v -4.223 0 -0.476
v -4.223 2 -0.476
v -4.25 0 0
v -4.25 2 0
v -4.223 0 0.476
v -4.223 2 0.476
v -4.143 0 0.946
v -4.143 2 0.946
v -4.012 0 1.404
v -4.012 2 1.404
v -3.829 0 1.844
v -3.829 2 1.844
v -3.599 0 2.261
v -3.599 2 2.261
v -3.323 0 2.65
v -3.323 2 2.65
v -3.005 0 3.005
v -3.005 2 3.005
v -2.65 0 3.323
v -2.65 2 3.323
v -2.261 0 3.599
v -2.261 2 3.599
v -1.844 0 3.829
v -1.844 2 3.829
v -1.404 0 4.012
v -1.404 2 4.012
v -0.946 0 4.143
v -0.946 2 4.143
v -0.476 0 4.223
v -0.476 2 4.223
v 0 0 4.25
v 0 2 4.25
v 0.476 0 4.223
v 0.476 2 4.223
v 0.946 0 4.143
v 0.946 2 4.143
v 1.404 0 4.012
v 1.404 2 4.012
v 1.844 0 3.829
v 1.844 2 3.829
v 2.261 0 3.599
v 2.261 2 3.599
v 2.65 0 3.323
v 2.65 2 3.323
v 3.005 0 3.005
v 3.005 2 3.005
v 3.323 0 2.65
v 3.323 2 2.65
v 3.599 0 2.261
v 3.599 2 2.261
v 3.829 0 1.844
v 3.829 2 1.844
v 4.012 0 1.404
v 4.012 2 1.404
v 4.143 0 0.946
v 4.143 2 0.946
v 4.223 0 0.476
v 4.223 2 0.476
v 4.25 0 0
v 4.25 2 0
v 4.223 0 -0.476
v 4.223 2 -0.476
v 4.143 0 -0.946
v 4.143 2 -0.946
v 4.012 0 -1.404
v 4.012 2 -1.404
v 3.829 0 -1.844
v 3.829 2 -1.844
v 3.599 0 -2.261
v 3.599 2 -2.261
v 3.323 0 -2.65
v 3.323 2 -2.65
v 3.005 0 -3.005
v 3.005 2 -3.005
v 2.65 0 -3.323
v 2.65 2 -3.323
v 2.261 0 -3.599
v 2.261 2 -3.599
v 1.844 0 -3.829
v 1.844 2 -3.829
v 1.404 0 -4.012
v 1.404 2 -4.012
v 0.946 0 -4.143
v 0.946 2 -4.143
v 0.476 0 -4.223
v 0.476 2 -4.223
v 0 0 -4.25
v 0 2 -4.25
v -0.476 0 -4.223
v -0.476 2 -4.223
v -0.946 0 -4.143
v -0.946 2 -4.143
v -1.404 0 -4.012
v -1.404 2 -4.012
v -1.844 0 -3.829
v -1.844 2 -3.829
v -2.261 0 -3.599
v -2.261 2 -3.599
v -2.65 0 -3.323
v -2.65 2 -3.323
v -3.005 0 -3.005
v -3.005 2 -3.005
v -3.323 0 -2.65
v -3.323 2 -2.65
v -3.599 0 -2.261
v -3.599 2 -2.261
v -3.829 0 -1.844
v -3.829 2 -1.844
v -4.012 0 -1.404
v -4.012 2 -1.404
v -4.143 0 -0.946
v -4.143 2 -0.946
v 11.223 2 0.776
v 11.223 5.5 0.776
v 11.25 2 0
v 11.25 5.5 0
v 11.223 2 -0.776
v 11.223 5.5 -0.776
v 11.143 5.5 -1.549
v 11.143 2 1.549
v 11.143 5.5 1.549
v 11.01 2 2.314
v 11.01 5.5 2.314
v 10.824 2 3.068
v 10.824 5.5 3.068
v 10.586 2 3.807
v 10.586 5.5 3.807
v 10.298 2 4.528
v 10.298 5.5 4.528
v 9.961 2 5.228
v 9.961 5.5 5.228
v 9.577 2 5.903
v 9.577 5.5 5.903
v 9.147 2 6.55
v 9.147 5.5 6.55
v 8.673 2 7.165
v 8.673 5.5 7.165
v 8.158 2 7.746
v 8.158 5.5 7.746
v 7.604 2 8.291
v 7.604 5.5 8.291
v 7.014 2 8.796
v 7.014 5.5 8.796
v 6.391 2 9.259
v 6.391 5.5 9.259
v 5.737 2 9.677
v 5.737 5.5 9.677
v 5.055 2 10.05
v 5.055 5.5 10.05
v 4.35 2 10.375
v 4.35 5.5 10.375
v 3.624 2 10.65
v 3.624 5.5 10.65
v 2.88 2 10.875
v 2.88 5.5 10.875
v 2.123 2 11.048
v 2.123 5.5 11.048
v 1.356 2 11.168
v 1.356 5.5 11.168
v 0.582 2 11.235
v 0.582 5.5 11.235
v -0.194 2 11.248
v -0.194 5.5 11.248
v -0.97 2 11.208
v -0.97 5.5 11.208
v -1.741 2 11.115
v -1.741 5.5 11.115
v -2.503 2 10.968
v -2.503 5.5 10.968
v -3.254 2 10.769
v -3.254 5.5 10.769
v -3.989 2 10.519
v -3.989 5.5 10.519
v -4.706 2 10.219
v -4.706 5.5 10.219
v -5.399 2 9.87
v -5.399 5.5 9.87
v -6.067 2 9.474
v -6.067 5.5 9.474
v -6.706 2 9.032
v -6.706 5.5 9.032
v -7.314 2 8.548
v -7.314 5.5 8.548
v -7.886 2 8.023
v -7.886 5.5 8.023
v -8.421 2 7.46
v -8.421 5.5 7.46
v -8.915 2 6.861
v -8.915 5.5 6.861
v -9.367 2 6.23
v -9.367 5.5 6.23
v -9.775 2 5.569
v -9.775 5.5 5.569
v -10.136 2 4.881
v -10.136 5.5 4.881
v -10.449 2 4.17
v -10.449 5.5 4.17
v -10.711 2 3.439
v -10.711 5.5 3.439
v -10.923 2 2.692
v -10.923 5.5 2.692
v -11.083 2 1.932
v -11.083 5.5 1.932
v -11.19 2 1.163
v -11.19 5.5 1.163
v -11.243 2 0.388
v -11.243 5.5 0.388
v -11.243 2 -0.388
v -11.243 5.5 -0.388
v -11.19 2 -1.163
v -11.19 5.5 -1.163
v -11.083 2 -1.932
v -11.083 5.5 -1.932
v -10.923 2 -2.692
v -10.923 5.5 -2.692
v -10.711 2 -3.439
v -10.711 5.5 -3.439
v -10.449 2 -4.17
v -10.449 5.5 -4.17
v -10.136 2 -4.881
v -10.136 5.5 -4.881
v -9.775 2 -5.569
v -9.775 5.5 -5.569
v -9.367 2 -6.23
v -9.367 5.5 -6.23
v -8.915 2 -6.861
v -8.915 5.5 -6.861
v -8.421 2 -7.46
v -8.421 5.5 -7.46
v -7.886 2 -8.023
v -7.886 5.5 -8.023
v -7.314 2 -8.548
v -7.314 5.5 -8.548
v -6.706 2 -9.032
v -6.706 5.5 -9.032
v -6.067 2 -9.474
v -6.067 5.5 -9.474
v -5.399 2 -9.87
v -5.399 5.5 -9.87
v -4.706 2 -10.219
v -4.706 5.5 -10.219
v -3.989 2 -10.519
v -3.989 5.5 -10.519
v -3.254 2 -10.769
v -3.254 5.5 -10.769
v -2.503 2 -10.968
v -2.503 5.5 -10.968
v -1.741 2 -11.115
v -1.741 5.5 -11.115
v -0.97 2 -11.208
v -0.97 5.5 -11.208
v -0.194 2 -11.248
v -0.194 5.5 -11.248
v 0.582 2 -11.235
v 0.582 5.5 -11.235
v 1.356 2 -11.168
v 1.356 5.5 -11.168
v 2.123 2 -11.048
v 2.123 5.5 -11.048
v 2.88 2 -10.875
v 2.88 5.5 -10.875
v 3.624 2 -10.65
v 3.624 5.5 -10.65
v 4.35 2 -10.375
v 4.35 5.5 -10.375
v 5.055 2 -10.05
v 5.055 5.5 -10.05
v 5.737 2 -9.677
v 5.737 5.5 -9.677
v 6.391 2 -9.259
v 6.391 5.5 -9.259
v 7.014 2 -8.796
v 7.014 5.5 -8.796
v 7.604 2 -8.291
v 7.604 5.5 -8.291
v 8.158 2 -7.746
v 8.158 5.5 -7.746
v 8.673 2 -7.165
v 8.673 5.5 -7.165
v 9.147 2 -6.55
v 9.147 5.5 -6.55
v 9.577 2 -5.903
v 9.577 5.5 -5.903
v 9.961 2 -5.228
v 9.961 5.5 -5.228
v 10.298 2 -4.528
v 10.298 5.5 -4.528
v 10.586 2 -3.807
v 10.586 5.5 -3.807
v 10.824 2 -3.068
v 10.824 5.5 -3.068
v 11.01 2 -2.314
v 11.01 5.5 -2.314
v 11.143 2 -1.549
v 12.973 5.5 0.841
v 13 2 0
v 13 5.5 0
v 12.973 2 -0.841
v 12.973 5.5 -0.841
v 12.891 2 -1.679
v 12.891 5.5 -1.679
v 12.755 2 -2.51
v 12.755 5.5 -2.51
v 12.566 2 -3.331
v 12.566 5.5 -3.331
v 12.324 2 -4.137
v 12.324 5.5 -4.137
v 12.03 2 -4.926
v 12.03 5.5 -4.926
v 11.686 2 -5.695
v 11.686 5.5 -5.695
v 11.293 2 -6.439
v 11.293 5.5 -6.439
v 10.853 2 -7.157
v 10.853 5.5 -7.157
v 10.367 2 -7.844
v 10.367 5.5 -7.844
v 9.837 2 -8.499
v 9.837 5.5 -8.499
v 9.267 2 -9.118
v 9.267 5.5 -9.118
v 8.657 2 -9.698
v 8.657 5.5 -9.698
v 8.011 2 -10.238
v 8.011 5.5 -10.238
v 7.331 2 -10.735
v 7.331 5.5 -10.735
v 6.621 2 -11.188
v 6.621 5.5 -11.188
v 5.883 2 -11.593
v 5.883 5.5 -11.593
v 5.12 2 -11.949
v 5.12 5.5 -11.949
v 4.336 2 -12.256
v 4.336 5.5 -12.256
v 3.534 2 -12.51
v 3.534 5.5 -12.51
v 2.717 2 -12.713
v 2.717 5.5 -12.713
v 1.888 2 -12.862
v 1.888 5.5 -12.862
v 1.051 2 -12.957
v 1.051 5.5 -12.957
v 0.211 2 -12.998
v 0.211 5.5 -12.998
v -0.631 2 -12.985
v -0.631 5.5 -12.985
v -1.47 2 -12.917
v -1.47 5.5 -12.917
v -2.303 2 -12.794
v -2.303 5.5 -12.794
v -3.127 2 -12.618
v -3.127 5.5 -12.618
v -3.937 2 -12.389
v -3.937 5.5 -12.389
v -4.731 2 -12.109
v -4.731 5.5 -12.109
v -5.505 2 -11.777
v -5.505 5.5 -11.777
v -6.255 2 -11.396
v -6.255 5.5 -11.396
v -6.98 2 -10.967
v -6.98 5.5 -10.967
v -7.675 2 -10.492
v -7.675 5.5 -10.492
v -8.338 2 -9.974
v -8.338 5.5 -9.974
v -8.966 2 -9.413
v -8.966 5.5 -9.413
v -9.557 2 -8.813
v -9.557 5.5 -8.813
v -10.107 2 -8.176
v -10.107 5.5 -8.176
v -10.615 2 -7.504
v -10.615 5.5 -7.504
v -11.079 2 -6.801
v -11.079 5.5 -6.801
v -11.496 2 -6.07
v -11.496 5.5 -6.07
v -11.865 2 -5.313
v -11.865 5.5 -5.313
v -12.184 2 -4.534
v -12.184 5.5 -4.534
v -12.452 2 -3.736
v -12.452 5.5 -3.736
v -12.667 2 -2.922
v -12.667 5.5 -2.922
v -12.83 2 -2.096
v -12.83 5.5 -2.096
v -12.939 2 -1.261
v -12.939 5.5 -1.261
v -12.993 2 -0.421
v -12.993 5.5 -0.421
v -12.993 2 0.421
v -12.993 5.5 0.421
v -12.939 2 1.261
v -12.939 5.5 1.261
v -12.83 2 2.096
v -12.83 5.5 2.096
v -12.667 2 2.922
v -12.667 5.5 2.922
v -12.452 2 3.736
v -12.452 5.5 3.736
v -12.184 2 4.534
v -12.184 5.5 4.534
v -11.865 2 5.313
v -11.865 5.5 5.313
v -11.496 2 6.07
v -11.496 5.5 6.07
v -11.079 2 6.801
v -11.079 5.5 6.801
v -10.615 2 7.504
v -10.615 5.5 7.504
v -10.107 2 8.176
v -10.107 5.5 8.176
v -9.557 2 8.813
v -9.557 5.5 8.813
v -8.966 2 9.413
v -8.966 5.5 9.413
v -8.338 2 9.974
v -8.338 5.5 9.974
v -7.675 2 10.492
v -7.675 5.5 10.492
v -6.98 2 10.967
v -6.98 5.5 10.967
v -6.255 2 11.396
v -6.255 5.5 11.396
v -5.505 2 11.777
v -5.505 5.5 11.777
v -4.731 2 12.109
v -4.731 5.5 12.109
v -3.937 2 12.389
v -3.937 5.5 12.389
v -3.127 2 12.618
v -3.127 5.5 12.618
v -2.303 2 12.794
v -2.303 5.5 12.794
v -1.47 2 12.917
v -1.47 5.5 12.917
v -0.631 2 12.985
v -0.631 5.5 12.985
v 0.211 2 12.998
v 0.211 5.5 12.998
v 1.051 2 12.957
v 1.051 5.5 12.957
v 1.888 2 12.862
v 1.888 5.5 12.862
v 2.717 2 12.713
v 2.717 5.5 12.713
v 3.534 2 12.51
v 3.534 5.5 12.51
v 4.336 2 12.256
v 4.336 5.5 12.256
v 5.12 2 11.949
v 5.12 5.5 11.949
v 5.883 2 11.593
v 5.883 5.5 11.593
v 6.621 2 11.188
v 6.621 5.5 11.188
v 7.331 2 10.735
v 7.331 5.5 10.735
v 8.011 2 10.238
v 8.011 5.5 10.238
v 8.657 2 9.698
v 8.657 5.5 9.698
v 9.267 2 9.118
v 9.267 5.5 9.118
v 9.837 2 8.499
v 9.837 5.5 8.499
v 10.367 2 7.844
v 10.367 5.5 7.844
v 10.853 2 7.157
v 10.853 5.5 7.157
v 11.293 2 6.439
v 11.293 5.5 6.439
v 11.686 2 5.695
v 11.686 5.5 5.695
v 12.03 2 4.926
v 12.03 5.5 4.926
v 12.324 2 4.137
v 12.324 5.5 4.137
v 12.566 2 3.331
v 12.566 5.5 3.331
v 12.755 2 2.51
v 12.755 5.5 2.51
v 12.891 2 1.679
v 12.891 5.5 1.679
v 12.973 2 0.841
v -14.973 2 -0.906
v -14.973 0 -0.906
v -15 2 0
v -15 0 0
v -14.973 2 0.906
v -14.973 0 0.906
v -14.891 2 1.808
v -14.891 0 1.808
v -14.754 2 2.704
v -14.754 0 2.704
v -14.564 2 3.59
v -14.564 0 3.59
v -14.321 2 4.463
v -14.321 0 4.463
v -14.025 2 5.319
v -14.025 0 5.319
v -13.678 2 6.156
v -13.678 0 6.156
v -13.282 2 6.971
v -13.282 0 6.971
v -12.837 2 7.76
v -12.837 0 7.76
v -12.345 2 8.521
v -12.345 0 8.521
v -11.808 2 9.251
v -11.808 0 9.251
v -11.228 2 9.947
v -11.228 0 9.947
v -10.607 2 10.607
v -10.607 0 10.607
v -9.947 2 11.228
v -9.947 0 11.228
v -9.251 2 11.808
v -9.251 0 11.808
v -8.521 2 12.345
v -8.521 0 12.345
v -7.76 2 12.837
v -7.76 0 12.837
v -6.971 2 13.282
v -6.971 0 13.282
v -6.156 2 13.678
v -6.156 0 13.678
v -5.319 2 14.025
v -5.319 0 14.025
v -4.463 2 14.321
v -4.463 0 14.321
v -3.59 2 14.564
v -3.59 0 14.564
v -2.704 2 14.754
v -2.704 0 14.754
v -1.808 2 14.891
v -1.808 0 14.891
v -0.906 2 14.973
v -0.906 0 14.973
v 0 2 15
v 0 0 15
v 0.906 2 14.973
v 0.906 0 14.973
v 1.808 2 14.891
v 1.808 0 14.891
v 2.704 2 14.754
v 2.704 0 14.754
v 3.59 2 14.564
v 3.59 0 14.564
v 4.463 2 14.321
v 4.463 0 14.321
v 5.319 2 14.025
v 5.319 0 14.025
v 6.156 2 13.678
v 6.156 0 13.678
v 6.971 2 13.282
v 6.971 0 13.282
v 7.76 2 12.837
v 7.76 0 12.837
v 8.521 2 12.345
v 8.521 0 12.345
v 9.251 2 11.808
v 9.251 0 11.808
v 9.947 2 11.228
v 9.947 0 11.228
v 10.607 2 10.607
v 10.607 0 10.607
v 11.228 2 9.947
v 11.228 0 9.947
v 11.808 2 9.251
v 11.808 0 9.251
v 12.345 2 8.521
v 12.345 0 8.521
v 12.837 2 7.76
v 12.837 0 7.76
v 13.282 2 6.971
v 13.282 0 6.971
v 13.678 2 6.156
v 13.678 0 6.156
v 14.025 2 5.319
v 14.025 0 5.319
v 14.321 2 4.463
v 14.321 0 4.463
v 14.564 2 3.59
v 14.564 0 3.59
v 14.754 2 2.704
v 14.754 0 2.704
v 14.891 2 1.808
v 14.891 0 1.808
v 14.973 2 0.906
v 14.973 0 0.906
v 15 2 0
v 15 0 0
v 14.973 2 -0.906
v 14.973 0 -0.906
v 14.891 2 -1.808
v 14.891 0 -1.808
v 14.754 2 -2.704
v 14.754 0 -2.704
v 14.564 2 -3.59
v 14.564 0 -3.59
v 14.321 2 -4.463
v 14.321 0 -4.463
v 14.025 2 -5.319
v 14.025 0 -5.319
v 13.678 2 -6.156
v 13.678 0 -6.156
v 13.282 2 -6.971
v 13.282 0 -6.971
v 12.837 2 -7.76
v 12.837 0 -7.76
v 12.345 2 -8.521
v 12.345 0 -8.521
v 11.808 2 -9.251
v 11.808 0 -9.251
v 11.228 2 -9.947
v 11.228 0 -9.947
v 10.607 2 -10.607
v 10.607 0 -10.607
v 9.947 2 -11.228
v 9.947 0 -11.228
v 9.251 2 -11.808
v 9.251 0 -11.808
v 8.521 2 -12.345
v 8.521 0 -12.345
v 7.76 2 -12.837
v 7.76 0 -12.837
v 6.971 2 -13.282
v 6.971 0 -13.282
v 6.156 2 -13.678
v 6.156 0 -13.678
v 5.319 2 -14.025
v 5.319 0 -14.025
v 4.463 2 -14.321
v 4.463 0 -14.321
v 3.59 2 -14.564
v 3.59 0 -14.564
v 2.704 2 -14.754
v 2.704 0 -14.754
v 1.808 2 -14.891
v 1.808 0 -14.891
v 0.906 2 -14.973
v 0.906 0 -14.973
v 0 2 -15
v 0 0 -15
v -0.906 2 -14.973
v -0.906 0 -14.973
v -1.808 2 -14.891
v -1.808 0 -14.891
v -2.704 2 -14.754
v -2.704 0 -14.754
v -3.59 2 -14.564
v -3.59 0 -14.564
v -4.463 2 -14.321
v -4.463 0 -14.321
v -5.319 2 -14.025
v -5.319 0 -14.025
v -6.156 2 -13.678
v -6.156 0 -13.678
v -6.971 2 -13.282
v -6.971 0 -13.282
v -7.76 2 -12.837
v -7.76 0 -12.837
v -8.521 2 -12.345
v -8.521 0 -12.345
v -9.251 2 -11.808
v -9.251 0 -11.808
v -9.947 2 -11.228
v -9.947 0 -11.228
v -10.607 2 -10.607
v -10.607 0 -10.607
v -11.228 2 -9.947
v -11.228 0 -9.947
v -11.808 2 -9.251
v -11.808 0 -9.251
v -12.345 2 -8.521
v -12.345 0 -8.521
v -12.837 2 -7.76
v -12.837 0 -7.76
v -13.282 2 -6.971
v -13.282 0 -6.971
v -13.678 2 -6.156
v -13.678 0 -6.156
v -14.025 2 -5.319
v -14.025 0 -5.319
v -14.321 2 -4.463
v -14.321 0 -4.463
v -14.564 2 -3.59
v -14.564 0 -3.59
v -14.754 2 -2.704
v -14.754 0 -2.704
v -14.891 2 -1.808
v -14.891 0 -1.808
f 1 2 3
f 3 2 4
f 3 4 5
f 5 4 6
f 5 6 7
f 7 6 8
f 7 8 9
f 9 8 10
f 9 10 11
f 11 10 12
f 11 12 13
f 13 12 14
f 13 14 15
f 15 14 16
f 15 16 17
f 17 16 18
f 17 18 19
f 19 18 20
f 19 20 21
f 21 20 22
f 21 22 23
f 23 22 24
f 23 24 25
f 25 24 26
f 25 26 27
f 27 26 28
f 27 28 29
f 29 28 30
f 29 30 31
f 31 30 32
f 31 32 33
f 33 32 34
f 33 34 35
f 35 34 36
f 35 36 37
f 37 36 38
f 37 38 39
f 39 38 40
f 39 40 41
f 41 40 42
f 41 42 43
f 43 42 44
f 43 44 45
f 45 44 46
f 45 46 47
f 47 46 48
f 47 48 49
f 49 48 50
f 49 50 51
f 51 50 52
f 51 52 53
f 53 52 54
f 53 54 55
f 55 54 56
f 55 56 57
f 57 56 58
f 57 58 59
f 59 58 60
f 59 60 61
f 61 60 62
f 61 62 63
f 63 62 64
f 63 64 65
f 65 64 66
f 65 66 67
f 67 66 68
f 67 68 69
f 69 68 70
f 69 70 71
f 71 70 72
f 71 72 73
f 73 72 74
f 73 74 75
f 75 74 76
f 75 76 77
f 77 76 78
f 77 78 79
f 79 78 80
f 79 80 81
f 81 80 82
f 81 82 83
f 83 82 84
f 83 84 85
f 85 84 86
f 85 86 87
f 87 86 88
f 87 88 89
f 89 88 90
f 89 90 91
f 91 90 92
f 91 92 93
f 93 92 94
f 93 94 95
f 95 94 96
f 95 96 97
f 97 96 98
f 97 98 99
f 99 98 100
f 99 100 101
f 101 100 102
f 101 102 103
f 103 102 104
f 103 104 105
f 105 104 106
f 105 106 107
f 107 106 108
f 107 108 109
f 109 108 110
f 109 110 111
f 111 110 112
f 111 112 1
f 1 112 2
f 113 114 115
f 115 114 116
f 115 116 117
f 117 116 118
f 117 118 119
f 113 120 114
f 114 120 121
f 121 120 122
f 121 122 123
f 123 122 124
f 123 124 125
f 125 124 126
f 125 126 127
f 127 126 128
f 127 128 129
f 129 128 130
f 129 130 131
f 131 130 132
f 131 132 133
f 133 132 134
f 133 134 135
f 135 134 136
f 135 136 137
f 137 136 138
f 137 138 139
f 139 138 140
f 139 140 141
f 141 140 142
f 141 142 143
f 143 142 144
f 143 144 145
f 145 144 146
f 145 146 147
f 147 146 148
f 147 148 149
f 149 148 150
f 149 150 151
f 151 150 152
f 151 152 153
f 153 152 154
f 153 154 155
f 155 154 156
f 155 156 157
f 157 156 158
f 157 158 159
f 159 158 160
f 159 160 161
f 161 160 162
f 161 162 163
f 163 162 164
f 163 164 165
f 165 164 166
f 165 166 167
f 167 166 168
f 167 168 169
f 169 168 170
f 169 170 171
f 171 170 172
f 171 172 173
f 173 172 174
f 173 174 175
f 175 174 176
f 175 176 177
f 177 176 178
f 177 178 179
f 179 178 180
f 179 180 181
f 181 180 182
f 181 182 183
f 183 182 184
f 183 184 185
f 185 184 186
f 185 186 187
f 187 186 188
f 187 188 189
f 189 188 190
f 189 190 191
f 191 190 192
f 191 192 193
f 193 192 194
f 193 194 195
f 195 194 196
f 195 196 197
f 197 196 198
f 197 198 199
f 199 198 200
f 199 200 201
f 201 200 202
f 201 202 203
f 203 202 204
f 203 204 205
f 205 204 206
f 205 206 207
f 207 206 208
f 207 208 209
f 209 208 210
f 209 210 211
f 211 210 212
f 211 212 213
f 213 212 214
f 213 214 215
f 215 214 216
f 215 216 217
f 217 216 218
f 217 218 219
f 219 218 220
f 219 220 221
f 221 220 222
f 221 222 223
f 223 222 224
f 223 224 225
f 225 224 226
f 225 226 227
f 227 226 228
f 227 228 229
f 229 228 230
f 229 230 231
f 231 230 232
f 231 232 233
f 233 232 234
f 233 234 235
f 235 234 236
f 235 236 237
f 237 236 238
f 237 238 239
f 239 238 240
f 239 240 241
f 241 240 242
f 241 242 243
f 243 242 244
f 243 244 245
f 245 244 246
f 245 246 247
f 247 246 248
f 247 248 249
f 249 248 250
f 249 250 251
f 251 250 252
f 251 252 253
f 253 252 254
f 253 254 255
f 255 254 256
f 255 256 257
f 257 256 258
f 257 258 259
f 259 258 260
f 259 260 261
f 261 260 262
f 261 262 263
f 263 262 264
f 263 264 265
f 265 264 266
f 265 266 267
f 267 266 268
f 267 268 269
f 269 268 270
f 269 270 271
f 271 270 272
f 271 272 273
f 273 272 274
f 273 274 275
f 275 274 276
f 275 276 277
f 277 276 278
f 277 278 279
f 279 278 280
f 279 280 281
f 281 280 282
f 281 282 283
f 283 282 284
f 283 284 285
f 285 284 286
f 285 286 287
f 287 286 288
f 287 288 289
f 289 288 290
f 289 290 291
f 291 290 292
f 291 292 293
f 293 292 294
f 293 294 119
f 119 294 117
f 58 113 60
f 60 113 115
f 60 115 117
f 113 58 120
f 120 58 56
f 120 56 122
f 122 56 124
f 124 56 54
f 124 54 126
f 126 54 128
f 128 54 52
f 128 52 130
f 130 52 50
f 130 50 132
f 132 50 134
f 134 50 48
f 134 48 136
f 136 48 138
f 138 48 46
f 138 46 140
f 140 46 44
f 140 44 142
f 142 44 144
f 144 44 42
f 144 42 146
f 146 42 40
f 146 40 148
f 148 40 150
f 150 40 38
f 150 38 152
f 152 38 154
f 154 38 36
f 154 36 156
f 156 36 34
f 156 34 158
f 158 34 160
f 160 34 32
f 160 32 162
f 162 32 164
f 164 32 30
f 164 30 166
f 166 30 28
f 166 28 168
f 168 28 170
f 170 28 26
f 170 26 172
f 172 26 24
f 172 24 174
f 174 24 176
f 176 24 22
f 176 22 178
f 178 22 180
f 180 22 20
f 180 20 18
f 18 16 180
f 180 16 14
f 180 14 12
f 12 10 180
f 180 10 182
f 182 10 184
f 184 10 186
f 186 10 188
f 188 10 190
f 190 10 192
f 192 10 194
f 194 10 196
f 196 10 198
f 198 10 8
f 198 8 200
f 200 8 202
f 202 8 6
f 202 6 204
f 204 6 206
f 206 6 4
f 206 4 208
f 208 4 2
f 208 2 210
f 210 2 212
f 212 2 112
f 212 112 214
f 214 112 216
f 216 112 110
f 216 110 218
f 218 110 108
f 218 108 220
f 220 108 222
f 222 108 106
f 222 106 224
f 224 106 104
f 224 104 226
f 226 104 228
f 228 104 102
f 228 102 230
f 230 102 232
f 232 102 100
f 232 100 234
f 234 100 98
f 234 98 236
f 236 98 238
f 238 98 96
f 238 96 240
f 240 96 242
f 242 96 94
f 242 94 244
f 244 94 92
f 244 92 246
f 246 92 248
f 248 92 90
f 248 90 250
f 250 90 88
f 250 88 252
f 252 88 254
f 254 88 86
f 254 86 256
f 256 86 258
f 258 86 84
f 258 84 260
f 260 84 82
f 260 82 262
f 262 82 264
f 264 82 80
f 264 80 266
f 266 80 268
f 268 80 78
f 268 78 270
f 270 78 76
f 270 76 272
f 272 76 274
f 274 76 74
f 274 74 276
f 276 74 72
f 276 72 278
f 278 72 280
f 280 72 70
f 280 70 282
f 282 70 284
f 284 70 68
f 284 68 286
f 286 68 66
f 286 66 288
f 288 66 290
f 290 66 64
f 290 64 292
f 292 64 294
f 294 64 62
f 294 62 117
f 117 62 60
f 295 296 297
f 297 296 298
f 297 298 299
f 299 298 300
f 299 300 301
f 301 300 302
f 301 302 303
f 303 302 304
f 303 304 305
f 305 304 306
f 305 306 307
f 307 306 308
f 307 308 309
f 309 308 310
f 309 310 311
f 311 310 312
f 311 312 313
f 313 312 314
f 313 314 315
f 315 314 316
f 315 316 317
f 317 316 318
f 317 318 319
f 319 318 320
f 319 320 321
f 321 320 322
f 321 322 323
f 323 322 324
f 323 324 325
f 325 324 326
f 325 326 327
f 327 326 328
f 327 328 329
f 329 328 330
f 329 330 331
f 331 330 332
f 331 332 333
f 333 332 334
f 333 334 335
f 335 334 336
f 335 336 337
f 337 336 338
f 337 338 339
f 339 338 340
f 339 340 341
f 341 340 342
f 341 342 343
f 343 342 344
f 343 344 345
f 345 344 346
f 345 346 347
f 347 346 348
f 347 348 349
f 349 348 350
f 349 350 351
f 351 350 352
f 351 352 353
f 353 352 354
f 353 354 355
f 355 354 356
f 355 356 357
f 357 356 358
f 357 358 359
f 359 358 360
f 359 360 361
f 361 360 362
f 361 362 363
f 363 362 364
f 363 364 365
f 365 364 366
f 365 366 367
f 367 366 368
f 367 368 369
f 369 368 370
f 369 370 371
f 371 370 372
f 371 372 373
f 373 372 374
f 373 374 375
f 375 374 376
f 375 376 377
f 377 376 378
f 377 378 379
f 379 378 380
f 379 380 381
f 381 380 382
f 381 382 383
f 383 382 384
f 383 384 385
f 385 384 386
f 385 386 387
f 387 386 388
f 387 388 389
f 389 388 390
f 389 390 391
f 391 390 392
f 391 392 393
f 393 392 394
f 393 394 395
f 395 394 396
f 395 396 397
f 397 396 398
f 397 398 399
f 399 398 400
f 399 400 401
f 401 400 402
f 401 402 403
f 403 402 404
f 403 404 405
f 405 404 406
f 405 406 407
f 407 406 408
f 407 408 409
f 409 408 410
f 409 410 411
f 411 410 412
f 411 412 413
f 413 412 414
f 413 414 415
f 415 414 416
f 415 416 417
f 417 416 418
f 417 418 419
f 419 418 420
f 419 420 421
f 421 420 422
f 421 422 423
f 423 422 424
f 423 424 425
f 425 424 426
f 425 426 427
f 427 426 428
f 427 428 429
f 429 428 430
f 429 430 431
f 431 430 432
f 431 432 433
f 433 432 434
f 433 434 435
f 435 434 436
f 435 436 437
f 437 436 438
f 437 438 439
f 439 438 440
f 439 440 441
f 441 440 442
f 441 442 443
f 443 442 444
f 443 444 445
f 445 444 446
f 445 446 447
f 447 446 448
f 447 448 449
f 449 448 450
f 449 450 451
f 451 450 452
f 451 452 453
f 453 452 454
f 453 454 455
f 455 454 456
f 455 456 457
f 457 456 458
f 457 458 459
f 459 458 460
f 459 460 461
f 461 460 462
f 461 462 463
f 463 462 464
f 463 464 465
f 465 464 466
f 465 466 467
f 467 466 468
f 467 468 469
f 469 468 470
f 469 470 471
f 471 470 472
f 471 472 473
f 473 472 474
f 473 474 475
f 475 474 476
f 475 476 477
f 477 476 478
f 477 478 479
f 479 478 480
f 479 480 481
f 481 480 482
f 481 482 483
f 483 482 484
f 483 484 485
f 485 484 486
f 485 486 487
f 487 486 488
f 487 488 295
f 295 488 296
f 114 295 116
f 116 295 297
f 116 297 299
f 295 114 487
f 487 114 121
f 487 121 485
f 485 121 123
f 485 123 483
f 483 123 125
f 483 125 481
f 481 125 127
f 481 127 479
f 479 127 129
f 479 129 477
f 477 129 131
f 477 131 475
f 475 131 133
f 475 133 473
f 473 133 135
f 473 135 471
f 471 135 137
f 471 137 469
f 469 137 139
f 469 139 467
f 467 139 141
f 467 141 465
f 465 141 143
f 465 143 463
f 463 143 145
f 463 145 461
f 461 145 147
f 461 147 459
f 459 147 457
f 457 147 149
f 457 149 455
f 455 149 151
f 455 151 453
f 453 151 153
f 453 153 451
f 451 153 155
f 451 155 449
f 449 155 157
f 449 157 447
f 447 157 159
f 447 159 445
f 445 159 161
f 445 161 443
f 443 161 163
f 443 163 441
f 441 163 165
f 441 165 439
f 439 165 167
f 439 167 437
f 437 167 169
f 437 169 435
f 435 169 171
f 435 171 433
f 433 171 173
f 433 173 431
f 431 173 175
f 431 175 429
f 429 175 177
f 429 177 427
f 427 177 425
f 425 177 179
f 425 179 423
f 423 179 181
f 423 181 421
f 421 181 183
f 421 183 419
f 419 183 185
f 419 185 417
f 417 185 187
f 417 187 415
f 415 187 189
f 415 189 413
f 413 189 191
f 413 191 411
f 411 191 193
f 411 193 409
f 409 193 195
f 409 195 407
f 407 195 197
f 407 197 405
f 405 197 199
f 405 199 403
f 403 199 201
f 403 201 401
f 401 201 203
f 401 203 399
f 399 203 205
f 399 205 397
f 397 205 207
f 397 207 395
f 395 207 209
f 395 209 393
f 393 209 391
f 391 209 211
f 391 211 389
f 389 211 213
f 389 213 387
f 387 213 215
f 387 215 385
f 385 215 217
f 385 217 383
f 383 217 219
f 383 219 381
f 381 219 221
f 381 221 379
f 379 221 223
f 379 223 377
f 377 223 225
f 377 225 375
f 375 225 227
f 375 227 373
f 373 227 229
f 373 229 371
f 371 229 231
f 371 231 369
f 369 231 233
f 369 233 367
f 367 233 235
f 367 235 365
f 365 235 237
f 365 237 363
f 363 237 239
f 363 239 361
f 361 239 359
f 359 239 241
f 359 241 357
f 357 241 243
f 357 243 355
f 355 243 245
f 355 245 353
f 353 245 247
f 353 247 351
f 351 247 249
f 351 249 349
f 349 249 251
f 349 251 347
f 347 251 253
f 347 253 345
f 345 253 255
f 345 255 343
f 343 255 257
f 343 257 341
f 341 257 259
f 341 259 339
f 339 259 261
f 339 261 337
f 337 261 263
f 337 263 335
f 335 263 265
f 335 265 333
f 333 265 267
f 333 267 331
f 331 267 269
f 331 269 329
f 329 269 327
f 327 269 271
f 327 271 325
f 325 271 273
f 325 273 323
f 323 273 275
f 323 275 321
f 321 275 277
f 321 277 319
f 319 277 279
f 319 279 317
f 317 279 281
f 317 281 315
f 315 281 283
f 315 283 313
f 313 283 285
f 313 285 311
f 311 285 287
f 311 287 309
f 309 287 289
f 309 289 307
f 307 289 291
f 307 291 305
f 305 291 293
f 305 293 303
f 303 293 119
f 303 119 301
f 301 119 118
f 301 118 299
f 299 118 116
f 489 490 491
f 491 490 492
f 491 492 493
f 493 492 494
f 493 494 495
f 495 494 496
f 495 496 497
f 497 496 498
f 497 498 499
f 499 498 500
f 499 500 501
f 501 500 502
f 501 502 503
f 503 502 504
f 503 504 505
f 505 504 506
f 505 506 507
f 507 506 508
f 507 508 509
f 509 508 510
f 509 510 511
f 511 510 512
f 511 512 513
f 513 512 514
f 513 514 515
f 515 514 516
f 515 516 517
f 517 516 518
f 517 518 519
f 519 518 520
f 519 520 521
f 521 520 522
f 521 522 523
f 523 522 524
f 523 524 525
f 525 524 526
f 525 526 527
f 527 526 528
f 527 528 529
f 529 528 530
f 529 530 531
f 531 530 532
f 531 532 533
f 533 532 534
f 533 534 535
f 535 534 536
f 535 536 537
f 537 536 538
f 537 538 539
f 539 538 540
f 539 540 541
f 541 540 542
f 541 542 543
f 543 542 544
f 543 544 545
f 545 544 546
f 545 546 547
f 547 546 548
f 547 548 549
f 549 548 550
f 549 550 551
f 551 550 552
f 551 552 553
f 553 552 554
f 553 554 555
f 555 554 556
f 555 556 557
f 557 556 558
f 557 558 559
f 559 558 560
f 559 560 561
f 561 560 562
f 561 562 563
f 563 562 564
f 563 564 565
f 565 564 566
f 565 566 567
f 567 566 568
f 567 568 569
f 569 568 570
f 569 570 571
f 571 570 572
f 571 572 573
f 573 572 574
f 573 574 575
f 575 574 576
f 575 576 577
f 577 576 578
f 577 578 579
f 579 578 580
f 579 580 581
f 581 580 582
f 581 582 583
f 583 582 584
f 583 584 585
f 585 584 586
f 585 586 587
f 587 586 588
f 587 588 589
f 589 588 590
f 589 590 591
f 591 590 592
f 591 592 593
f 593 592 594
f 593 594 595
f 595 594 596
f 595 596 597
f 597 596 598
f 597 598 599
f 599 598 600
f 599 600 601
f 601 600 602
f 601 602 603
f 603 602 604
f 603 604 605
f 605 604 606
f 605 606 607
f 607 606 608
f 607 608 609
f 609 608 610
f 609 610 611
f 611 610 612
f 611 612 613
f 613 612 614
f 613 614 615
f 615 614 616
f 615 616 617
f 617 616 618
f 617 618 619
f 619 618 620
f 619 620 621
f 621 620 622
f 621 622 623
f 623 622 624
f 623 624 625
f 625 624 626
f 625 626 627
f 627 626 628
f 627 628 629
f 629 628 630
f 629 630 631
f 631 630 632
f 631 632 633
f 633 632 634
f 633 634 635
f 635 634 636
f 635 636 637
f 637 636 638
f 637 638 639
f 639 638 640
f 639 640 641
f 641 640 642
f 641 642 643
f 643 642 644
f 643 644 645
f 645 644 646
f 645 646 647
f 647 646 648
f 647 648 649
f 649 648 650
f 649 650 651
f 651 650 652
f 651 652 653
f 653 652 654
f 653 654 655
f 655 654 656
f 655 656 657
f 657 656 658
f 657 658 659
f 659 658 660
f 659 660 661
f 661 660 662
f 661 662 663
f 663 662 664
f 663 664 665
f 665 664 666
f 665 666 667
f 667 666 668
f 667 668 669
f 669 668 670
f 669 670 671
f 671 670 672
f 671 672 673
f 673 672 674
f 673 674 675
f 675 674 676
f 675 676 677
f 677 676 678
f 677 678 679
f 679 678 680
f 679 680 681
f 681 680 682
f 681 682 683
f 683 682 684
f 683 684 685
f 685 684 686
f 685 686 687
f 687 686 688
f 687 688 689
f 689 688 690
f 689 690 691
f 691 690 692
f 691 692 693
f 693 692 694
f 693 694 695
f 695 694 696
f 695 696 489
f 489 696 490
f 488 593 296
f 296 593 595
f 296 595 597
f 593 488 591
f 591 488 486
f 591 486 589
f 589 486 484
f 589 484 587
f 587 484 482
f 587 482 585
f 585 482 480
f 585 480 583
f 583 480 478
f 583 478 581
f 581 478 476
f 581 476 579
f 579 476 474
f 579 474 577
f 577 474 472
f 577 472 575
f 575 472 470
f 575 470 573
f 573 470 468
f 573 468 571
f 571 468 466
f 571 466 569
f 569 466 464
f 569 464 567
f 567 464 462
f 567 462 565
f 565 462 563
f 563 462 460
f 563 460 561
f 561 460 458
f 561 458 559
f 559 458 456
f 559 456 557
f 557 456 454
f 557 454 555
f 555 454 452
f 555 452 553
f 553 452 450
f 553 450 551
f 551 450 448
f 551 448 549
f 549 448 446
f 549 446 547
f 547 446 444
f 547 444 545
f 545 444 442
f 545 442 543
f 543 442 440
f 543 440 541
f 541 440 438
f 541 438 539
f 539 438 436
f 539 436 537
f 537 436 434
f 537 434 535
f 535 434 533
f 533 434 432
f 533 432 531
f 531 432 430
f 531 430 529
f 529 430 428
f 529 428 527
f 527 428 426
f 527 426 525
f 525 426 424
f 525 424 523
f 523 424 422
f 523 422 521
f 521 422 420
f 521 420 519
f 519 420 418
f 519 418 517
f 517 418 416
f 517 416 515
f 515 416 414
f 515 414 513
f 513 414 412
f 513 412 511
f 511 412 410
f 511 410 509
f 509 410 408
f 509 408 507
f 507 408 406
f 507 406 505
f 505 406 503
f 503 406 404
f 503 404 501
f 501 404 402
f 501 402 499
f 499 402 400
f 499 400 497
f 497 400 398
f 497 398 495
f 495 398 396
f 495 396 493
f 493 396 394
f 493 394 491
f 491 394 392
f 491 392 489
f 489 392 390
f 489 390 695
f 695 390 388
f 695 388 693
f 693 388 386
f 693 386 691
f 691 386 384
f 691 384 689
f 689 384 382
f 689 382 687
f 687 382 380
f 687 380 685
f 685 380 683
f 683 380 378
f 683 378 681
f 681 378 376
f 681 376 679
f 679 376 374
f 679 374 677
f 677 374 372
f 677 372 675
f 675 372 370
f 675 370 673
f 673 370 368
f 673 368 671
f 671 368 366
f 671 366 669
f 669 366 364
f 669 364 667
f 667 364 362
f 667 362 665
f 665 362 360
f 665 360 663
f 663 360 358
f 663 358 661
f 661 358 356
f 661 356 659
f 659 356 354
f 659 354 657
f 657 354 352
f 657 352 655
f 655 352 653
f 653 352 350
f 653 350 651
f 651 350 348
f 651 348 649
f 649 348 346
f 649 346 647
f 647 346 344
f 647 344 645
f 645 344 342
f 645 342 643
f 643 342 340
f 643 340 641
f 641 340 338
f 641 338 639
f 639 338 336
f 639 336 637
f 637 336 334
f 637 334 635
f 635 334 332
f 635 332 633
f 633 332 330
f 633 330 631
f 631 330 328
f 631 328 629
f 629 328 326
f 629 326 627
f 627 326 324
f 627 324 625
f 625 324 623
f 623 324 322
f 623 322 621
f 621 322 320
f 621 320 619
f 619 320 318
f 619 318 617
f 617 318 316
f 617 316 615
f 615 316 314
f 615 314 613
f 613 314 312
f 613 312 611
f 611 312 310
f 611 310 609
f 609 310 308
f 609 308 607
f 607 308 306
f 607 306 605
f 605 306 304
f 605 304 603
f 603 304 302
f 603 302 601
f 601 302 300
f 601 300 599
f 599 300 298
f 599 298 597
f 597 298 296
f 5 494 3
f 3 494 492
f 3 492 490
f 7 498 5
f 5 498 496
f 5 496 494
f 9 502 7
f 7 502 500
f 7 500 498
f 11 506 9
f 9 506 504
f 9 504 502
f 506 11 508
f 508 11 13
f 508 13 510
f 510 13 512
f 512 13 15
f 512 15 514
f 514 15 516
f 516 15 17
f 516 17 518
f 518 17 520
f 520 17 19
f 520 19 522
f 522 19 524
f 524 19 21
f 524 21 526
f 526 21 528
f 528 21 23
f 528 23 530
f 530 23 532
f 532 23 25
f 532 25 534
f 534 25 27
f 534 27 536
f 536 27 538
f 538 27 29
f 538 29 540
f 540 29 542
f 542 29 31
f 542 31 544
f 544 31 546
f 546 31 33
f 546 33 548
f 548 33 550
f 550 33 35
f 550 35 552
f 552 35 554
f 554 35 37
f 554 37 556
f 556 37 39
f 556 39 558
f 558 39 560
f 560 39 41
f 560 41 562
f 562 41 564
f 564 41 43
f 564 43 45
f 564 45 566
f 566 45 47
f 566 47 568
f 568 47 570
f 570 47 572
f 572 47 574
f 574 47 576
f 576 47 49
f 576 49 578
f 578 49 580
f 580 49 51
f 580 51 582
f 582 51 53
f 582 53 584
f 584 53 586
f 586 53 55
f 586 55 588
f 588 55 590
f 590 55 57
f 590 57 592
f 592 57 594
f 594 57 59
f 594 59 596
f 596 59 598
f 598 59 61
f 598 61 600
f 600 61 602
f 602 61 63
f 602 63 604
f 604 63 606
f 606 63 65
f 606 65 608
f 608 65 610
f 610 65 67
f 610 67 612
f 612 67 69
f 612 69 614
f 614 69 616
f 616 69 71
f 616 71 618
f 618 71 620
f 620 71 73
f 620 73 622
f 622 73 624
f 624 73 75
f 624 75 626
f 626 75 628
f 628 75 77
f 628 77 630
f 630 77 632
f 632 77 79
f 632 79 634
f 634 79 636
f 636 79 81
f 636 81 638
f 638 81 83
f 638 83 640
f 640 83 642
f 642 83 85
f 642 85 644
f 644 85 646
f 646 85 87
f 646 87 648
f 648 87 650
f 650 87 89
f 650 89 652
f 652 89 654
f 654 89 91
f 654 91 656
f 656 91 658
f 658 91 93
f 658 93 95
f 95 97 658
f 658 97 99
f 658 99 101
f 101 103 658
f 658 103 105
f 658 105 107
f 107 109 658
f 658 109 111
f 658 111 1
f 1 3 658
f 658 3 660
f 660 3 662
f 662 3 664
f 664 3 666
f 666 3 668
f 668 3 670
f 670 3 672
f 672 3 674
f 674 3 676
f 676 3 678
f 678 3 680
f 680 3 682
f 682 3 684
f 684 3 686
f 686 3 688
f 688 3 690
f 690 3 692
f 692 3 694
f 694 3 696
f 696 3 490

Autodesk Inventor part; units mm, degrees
ref_plane "YZ Plane" through (0, 0, 0) normal (1, 0, 0) x (0, 1, 0)
ref_plane "XZ Plane" through (0, 0, 0) normal (0, 1, 0) x (-1, 0, 0)
ref_plane "XY Plane" through (0, 0, 0) normal (0, 0, 1) x (1, 0, 0)
sketch "Sketch1" plane through (0, 0, 0) normal (0, 1, 0) x (-1, 0, 0)
  circle A0 centre (0, 0) radius 15
  dimension "d0" = 30
extrude "Extrusion1" add sketch "Sketch1" along normal blind 2
sketch "Sketch2" plane through (0, 2, 0) normal (0, 1, 0) x (1, 0, 0)
  circle A0 centre (0, 0) radius 13
  dimension "d3" = 26
extrude "Extrusion2" add sketch "Sketch2" along normal blind 3.5
sketch "Sketch3" plane through (0, 5.5, 0) normal (0, 1, 0) x (1, 0, 0)
  circle A0 centre (0, 0) radius 11.25
  dimension "d6" = 22.5
extrude "Extrusion3" cut sketch "Sketch3" against normal blind 3.5
sketch "Sketch4" plane through (0, 2, 0) normal (0, 1, 0) x (1, 0, 0)
  circle A0 centre (0, 0) radius 4.25
  dimension "d9" = 8.5
extrude "Extrusion4" cut sketch "Sketch4" against normal through all
properties part number "poulie"
